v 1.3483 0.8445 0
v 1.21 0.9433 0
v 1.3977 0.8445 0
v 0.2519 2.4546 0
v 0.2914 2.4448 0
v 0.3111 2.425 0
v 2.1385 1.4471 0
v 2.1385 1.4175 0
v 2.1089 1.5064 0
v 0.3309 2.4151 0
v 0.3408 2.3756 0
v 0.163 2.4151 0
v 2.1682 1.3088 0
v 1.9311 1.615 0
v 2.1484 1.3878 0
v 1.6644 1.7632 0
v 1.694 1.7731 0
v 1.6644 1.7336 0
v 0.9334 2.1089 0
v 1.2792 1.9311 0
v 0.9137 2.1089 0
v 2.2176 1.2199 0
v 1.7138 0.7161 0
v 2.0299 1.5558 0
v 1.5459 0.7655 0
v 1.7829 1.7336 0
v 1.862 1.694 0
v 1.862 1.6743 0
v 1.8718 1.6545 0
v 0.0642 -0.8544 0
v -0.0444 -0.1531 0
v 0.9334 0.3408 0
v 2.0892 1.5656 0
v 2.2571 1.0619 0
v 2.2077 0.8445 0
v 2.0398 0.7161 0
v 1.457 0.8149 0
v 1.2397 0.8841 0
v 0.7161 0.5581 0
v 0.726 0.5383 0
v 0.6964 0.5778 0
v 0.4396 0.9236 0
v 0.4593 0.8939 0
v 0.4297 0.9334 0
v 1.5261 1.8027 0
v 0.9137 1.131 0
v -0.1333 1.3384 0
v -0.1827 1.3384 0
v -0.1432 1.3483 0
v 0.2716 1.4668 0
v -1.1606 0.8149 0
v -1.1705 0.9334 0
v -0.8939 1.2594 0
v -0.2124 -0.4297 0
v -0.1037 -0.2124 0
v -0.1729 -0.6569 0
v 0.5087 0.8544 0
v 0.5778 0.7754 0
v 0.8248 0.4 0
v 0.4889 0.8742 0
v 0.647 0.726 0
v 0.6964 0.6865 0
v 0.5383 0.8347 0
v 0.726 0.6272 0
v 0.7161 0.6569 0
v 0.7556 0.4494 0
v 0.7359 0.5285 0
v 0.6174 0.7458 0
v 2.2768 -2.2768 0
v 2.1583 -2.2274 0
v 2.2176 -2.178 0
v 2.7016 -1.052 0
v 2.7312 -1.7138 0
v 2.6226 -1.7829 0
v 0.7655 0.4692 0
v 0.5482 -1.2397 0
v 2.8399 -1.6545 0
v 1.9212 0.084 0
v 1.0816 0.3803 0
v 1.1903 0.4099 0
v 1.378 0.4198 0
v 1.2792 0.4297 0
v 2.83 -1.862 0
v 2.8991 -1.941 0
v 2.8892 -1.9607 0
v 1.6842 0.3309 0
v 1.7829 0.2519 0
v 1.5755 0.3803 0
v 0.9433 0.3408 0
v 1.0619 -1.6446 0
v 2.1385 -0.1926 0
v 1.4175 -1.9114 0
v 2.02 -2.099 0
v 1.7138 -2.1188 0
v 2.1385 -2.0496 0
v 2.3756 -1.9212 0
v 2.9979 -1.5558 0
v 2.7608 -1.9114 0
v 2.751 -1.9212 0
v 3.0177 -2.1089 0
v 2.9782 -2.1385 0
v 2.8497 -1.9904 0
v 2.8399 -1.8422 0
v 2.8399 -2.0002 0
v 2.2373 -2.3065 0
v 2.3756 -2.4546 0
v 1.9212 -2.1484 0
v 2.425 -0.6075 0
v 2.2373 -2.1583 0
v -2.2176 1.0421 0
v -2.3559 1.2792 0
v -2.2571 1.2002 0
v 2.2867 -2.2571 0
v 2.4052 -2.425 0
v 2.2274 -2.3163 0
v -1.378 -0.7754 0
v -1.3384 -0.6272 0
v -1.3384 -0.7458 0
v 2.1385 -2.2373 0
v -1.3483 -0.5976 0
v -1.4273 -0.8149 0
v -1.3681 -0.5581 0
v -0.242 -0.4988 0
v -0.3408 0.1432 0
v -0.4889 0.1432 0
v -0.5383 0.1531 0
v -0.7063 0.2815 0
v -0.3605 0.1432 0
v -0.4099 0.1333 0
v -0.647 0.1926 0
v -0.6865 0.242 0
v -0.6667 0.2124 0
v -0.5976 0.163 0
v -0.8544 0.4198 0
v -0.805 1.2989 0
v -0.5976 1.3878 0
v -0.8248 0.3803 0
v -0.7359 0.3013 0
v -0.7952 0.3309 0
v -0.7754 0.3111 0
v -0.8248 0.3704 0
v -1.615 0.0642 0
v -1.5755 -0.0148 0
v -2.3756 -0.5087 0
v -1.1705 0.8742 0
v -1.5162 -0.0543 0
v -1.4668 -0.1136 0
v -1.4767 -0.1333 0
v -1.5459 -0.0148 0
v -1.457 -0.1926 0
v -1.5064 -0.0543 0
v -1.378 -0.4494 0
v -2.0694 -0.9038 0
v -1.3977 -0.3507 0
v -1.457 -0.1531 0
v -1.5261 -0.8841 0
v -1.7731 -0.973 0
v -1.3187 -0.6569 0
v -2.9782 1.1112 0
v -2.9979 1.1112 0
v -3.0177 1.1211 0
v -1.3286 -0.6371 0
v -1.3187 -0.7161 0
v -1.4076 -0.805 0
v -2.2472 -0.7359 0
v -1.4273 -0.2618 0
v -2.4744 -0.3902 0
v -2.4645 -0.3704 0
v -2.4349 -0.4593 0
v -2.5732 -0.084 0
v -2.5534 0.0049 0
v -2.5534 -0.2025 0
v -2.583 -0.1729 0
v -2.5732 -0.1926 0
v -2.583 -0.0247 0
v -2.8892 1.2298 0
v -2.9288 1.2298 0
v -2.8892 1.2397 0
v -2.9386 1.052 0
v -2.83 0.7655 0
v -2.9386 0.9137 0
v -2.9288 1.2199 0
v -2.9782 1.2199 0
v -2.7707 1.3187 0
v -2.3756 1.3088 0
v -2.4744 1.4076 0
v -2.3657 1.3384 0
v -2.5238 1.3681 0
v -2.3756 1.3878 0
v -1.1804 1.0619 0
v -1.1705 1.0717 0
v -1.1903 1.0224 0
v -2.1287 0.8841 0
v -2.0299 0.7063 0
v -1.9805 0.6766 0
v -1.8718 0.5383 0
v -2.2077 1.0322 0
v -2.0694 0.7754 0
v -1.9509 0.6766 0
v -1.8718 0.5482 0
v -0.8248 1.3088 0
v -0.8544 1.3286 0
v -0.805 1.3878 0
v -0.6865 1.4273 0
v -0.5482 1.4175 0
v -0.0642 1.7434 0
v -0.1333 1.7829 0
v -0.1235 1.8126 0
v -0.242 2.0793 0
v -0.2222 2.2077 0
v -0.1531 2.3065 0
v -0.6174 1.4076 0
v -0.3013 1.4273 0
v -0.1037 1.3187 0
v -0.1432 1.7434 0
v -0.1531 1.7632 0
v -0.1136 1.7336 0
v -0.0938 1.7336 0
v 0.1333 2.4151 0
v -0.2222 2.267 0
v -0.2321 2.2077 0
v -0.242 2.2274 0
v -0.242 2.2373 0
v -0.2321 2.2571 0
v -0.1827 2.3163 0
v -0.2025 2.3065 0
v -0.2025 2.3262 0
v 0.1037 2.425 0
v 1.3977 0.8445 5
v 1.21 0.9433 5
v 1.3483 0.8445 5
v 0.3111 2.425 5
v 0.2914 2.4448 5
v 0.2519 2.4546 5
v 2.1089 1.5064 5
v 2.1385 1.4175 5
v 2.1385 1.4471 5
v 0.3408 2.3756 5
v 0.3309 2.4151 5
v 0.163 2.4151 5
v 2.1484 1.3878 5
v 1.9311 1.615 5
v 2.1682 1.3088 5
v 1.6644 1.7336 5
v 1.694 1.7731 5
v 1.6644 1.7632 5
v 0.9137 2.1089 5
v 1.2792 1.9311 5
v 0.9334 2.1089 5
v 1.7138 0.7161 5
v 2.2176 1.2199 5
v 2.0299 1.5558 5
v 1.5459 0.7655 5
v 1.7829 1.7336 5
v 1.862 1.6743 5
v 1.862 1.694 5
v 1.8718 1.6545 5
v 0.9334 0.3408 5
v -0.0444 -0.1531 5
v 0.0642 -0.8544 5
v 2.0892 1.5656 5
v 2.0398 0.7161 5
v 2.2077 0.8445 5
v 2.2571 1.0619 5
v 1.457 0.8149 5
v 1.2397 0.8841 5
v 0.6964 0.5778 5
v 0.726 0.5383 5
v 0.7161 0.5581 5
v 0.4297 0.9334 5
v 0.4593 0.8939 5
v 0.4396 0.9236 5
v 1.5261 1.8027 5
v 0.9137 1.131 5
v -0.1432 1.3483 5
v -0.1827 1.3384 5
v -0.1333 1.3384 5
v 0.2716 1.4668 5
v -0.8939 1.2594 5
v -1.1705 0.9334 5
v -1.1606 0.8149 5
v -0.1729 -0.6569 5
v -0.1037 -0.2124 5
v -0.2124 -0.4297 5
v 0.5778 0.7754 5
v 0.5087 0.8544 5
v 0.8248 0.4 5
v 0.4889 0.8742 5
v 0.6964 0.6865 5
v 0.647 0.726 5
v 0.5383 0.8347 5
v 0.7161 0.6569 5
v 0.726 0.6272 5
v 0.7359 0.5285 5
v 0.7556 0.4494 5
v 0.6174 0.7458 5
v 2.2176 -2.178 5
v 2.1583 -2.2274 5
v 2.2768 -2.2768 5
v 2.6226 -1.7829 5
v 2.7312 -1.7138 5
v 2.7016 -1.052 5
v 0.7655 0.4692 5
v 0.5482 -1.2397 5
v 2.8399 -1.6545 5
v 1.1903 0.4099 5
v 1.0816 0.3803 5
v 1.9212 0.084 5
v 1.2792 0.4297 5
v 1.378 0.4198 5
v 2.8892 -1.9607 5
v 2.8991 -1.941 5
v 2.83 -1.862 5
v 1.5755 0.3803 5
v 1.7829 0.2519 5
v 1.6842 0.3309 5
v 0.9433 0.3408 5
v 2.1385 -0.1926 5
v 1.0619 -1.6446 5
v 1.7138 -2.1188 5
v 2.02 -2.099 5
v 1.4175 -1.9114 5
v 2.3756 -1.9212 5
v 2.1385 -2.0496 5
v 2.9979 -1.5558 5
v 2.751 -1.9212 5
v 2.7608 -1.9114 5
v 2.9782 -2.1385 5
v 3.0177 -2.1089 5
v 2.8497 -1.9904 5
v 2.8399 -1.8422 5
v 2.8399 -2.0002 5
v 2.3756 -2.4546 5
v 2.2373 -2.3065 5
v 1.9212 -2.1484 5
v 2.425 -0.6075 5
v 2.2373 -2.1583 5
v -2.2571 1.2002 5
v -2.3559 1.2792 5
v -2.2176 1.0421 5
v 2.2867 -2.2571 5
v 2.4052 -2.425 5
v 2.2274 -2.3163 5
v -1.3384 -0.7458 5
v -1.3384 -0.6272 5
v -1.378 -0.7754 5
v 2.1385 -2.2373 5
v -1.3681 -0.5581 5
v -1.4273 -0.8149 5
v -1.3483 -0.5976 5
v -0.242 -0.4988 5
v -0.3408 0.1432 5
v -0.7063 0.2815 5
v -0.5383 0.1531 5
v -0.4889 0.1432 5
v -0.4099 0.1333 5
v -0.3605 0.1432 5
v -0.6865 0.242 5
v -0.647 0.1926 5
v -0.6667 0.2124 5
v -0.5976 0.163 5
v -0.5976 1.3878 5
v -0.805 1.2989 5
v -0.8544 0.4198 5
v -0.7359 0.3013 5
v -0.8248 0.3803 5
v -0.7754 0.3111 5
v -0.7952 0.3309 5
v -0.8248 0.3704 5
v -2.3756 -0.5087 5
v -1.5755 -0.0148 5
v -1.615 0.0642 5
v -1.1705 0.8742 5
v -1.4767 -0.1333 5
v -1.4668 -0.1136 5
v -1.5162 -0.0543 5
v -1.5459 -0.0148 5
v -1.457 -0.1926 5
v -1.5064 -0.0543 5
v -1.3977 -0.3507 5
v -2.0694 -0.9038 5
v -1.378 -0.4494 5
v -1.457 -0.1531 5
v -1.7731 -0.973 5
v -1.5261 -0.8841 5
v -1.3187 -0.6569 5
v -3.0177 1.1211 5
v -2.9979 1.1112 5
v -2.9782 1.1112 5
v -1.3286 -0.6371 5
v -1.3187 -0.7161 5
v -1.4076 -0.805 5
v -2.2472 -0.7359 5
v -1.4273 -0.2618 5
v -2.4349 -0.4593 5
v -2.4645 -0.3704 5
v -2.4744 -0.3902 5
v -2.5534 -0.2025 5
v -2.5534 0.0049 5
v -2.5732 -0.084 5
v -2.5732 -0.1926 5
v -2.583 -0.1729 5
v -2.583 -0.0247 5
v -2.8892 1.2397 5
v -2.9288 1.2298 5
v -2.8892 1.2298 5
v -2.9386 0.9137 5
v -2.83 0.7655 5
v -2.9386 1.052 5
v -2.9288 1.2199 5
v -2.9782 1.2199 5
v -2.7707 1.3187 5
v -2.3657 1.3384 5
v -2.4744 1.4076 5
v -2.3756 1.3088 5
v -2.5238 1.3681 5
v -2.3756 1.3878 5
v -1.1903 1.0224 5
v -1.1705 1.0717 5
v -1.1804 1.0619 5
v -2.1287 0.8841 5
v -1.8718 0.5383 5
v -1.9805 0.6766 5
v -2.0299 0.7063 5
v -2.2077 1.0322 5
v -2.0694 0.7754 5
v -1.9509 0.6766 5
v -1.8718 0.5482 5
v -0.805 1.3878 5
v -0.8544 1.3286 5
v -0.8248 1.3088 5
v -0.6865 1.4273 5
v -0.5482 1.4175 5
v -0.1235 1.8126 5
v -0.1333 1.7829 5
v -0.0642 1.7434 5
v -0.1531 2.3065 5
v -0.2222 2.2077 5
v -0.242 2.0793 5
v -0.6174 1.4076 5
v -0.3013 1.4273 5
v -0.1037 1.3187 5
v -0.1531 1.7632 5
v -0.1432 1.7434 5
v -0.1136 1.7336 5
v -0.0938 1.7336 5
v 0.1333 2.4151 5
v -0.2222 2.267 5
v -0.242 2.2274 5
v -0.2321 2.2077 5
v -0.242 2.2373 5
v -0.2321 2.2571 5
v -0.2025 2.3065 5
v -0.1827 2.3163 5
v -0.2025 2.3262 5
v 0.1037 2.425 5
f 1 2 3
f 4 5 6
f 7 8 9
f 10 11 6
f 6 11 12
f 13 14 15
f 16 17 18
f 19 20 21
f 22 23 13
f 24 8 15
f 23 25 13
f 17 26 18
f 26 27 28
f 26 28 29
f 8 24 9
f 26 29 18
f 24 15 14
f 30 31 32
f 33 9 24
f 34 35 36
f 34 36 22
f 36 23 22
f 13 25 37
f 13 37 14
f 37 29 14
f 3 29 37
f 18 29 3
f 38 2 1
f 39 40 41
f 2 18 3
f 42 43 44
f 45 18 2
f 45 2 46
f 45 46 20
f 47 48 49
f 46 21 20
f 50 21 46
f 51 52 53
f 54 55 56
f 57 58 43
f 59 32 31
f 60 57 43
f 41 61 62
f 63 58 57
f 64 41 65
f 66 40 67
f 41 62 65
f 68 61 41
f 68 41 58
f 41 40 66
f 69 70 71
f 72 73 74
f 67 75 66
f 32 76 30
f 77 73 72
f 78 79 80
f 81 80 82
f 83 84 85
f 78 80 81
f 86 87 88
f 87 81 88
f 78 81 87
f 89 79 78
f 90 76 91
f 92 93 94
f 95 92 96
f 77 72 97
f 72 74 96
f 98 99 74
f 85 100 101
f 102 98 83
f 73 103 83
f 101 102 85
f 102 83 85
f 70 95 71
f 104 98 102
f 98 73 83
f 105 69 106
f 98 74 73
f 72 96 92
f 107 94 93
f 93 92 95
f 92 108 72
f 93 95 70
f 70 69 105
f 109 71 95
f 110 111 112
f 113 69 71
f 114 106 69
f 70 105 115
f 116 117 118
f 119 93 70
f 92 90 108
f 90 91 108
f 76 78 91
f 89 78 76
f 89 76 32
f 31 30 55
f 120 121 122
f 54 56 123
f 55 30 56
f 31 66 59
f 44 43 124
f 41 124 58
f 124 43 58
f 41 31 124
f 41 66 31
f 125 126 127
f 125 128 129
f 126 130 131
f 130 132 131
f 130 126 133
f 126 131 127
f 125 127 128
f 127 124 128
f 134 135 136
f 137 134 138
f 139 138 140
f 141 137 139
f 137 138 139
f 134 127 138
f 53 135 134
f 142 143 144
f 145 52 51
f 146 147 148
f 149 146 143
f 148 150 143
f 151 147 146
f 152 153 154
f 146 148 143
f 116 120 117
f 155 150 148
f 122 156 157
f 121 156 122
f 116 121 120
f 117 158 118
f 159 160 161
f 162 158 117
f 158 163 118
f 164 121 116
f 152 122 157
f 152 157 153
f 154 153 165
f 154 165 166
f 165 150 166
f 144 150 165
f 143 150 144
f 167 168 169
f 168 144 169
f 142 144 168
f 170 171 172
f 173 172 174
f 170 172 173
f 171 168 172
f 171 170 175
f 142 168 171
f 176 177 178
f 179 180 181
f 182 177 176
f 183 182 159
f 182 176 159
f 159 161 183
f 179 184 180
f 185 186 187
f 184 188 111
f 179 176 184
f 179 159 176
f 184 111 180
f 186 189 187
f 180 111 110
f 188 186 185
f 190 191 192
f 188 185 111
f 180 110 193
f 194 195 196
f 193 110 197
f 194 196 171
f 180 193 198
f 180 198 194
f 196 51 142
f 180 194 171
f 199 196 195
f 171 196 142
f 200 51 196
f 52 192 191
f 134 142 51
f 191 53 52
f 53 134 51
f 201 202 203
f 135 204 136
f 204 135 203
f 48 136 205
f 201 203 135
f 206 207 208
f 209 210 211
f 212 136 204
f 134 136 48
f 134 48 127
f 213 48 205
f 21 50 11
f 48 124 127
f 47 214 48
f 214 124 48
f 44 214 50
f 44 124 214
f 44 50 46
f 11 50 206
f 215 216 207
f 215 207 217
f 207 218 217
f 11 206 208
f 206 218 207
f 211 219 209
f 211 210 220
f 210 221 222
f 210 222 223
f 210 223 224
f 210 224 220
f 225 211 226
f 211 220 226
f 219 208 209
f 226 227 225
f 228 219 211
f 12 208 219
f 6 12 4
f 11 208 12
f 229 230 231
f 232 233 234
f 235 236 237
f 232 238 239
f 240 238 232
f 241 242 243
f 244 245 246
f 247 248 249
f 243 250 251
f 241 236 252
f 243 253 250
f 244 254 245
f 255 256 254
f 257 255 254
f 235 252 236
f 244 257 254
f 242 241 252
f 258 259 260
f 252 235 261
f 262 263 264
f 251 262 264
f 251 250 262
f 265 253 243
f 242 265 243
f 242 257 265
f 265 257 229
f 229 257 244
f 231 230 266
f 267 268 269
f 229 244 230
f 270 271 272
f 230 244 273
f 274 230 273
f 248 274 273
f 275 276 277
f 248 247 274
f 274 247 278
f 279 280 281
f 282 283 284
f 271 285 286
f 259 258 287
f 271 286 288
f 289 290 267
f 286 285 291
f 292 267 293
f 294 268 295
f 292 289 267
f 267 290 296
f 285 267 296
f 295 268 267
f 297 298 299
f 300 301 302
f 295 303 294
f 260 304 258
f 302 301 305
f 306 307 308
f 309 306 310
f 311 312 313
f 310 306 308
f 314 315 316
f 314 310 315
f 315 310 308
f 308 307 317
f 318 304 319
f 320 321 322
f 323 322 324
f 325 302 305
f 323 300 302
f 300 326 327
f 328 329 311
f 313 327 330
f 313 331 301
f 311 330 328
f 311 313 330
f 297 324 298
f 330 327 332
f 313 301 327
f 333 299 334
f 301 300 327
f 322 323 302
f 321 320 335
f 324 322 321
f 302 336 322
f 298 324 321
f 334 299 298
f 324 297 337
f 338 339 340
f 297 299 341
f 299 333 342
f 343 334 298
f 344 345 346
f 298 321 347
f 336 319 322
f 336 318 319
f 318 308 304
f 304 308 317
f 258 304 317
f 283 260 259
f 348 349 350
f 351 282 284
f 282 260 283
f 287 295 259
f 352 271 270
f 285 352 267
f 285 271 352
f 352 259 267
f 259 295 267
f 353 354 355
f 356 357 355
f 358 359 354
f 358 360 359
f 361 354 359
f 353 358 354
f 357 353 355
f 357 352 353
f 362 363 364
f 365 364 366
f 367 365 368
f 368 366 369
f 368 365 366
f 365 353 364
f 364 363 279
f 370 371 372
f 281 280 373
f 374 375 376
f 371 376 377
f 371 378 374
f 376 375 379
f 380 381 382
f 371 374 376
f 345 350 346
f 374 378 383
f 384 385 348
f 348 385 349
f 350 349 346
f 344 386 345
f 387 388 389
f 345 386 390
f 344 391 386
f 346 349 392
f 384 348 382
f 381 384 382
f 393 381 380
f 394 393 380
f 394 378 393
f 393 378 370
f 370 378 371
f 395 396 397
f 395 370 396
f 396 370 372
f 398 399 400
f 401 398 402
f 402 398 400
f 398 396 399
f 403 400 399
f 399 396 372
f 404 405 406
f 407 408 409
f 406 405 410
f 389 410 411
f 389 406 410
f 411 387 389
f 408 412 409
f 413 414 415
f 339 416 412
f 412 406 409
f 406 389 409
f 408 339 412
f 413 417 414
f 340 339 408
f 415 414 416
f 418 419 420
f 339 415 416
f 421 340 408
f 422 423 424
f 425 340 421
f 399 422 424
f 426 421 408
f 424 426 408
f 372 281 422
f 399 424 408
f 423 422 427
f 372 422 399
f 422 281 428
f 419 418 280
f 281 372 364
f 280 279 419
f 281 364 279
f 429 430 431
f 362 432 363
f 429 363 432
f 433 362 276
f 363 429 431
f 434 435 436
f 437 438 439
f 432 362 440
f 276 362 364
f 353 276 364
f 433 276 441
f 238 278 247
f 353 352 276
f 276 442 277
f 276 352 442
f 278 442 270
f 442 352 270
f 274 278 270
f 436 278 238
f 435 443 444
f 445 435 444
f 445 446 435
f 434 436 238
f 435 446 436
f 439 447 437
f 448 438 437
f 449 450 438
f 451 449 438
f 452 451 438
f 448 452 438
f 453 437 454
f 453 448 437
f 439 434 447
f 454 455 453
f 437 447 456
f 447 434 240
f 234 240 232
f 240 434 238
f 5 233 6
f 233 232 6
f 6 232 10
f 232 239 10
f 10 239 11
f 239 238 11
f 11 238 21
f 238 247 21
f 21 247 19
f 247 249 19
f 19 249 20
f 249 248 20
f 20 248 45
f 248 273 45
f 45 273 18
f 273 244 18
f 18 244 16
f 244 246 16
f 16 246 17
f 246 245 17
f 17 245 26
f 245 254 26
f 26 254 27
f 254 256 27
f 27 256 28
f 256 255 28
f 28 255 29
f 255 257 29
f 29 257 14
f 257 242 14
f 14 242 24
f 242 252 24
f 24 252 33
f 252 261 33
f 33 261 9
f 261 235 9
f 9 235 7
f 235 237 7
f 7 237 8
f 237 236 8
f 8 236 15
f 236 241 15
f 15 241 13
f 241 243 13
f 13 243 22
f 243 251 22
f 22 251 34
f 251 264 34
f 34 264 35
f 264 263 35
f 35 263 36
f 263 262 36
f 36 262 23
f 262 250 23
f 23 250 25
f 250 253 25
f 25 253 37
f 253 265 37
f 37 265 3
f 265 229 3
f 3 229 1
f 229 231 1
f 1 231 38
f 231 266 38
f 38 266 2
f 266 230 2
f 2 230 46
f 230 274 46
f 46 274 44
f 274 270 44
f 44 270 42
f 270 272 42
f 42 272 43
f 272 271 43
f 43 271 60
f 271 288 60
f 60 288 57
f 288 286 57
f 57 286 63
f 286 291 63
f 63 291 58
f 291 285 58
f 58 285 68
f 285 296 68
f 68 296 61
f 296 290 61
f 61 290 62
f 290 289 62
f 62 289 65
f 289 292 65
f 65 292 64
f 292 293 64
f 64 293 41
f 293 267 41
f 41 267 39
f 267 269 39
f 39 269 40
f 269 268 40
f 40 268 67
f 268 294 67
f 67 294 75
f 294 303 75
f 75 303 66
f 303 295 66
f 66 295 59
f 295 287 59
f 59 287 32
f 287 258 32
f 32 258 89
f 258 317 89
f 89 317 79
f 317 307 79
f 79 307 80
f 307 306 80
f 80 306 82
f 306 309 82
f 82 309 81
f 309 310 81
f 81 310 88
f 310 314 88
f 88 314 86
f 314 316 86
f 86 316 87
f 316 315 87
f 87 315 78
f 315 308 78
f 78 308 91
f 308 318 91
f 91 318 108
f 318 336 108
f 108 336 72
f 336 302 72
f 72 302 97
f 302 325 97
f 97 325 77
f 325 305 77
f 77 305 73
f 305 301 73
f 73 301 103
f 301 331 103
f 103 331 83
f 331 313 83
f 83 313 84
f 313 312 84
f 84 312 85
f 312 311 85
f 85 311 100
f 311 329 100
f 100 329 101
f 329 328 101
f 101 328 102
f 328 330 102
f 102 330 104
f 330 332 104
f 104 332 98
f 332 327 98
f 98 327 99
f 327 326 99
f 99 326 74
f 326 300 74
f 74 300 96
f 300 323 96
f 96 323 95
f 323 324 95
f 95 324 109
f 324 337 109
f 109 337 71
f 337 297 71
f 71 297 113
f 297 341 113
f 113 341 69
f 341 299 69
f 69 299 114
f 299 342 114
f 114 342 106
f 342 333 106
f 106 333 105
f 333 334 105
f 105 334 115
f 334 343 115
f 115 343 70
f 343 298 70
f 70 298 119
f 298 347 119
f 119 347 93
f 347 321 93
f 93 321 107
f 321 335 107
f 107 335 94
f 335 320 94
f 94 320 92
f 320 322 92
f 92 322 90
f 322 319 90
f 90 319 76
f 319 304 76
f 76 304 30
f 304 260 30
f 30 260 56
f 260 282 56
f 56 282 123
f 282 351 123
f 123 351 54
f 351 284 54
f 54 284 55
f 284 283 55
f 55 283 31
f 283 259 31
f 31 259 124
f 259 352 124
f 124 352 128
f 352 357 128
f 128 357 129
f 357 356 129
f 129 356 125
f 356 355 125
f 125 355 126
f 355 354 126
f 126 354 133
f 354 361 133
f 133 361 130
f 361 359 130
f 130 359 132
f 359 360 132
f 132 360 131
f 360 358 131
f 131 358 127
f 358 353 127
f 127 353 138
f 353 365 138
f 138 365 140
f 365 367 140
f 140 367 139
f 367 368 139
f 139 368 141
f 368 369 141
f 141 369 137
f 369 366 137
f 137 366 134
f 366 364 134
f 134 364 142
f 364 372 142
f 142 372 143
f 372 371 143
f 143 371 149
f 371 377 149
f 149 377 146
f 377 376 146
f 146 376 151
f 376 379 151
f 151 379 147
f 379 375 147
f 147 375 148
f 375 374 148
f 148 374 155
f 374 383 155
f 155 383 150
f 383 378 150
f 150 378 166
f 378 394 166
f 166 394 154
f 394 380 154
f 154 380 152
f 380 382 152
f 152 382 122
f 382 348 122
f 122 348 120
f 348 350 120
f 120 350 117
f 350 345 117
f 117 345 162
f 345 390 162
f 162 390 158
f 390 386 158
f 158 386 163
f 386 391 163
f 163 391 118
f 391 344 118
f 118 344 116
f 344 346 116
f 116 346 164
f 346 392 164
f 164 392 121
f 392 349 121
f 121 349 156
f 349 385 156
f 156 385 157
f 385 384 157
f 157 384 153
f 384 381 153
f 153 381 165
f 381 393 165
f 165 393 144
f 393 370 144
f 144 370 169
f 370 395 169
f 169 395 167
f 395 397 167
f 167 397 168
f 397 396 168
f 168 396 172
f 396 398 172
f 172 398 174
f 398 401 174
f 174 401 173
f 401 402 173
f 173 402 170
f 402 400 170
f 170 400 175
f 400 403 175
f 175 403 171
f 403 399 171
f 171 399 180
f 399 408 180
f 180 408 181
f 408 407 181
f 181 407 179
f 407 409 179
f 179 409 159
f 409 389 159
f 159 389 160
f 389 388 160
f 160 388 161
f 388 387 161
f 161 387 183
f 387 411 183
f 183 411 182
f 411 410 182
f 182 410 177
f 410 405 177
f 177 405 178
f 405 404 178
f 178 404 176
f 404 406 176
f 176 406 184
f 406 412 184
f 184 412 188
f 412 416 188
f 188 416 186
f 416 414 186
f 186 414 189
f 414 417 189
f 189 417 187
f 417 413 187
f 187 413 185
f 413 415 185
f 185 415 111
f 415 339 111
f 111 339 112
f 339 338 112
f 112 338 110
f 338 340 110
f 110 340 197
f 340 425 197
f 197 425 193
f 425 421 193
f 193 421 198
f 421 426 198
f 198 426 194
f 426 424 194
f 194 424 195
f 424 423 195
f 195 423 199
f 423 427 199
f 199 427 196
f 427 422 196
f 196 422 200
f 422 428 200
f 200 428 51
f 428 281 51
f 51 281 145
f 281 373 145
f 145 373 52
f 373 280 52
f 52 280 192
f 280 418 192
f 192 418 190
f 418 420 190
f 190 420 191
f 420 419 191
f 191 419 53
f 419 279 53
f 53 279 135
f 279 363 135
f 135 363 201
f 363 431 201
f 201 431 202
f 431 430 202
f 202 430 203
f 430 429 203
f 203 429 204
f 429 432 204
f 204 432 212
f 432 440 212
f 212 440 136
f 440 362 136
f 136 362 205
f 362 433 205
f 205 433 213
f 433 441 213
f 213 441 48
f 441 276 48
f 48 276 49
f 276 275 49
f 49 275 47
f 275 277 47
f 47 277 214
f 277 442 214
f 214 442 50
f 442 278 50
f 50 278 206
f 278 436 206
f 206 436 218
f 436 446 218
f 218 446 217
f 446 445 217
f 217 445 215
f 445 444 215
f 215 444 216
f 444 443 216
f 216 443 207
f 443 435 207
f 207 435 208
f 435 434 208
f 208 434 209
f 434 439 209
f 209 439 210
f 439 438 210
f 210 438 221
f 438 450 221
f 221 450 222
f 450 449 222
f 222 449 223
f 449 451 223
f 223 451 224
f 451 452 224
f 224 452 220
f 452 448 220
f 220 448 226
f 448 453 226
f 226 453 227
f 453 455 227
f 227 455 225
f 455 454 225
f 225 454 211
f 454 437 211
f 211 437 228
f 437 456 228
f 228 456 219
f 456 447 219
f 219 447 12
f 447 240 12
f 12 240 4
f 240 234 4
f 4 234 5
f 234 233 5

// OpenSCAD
// Module names are of the form poly_<inkscape-path-id>().  As a result,
// you can associate a polygon in this OpenSCAD program with the corresponding
// SVG element in the Inkscape document by looking for the XML element with
// the attribute id="inkscape-path-id".

// fudge value is used to ensure that subtracted solids are a tad taller
// in the z dimension than the polygon being subtracted from.  This helps
// keep the resulting .stl file manifold.
fudge = 0.1;

module poly_path4390(h)
{
  scale([25.4/90, -25.4/90, 1]) union()
  {
    linear_extrude(height=h)
      polygon([[10.692500,7.472500],[10.552500,7.577500],[10.097500,7.052500],[10.062500,7.087500],[9.782500,6.772500],[9.747500,6.807500],[9.292500,6.317500],[8.417500,6.807500],[7.577500,7.262500],[7.927500,7.647500],[7.857500,7.717500],[8.102500,7.997500],[8.067500,8.067500],[8.522500,8.592500],[8.417500,8.697500],[7.927500,8.172500],[7.892500,8.207500],[7.647500,7.892500],[7.577500,7.927500],[7.157500,7.437500],[6.947500,7.542500],[6.807500,7.612500],[6.072500,7.507500],[5.022500,6.772500],[3.762500,5.827500],[1.942500,4.392500],[0.227500,3.027500],[-0.612500,2.327500],[-0.857500,1.767500],[-0.752500,1.522500],[-0.577500,1.172500],[-0.367500,0.752500],[-0.157500,0.542500],[-1.207500,-0.507500],[-1.277500,-0.507500],[-1.452500,-0.472500],[-1.732500,-0.507500],[-1.907500,-0.542500],[-2.117500,-0.577500],[-2.292500,-0.682500],[-2.362500,-0.752500],[-2.432500,-0.857500],[-2.502500,-0.997500],[-2.607500,-1.067500],[-2.747500,-1.102500],[-2.817500,-1.172500],[-2.922500,-1.312500],[-2.922500,-1.347500],[-3.027500,-1.487500],[-5.722500,-0.227500],[-5.582500,0.052500],[-5.477500,0.052500],[-5.372500,0.192500],[-5.337500,0.192500],[-5.197500,0.402500],[-5.232500,0.472500],[-5.162500,0.542500],[-5.162500,0.682500],[-5.057500,0.927500],[-4.952500,1.242500],[-4.882500,1.592500],[-4.847500,1.977500],[-4.812500,2.047500],[-4.777500,2.117500],[-4.742500,2.222500],[-4.707500,2.257500],[-4.672500,2.327500],[-4.672500,2.537500],[-4.742500,2.642500],[-4.882500,2.747500],[-4.987500,2.852500],[-5.057500,2.887500],[-5.407500,3.132500],[-6.282500,3.447500],[-7.332500,3.202500],[-7.962500,2.607500],[-8.417500,1.802500],[-8.627500,1.627500],[-8.767500,1.382500],[-8.732500,1.312500],[-9.047500,0.717500],[-9.117500,0.682500],[-9.152500,0.612500],[-9.117500,0.297500],[-9.152500,0.087500],[-9.047500,-0.017500],[-10.027500,-2.712500],[-10.412500,-3.237500],[-10.412500,-3.727500],[-10.552500,-3.937500],[-10.622500,-3.937500],[-10.692500,-3.972500],[-10.552500,-4.322500],[-10.377500,-4.322500],[-10.377500,-4.357500],[-10.237500,-4.392500],[-10.237500,-4.357500],[-9.817500,-4.672500],[-8.942500,-4.847500],[-8.767500,-4.987500],[-8.417500,-4.917500],[-8.382500,-4.742500],[-8.417500,-4.637500],[-8.347500,-4.532500],[-7.997500,-4.252500],[-7.857500,-3.692500],[-7.822500,-3.657500],[-7.542500,-3.132500],[-7.332500,-2.747500],[-7.192500,-2.502500],[-7.017500,-2.397500],[-6.912500,-2.397500],[-6.632500,-1.907500],[-6.632500,-1.942500],[-4.112500,-2.887500],[-4.147500,-3.097500],[-4.147500,-3.167500],[-4.147500,-3.237500],[-4.147500,-3.307500],[-4.217500,-3.622500],[-4.182500,-3.762500],[-4.147500,-3.797500],[-3.167500,-4.462500],[-2.852500,-4.602500],[-2.922500,-4.637500],[-3.027500,-4.707500],[-2.852500,-4.917500],[-2.432500,-5.057500],[-2.187500,-4.987500],[-2.117500,-4.917500],[-1.942500,-5.022500],[-1.067500,-5.057500],[-0.647500,-4.742500],[-0.507500,-4.777500],[-0.472500,-4.742500],[-0.367500,-4.672500],[0.962500,-5.197500],[-0.227500,-6.177500],[-0.332500,-6.142500],[-0.402500,-6.142500],[-0.507500,-6.177500],[-0.542500,-6.247500],[-0.472500,-6.317500],[-0.437500,-6.422500],[-0.857500,-7.367500],[-0.787500,-7.822500],[-0.822500,-7.822500],[-0.857500,-7.892500],[-0.857500,-7.927500],[-0.822500,-7.997500],[-0.787500,-8.032500],[-0.752500,-8.102500],[-0.717500,-8.172500],[-0.717500,-8.242500],[-0.647500,-8.207500],[-0.542500,-8.172500],[0.367500,-8.592500],[0.472500,-8.557500],[0.577500,-8.557500],[0.892500,-8.697500],[1.032500,-8.662500],[1.102500,-8.592500],[1.172500,-8.557500],[1.207500,-8.417500],[3.237500,-7.472500],[3.307500,-7.472500],[4.532500,-6.842500],[5.407500,-6.387500],[5.897500,-6.142500],[5.897500,-6.247500],[6.002500,-6.282500],[6.317500,-6.142500],[6.597500,-6.002500],[6.597500,-5.932500],[6.632500,-5.862500],[6.842500,-5.722500],[7.017500,-5.617500],[7.192500,-5.512500],[7.402500,-5.547500],[7.472500,-5.337500],[7.542500,-5.197500],[7.577500,-5.127500],[7.577500,-5.022500],[7.612500,-4.917500],[7.682500,-4.637500],[7.857500,-4.322500],[7.997500,-3.762500],[7.822500,-2.992500],[7.227500,-2.537500],[6.072500,-2.537500],[5.477500,-2.712500],[5.162500,-2.887500],[4.952500,-2.992500],[4.777500,-2.992500],[4.392500,-3.132500],[4.287500,-3.342500],[3.237500,-4.007500],[1.522500,-3.307500],[1.557500,-3.272500],[1.627500,-3.167500],[1.732500,-3.097500],[1.802500,-3.027500],[1.907500,-2.957500],[2.047500,-2.747500],[2.187500,-2.642500],[2.292500,-2.572500],[2.467500,-2.432500],[2.537500,-2.327500],[2.572500,-2.222500],[2.467500,-2.047500],[2.502500,-2.012500],[2.537500,-1.977500],[2.572500,-1.907500],[2.607500,-1.872500],[2.677500,-1.732500],[2.712500,-1.662500],[2.677500,-1.592500],[2.922500,-1.417500],[3.307500,-1.207500],[3.342500,-1.207500],[3.832500,-1.347500],[4.217500,-1.452500],[4.532500,-1.522500],[4.882500,-1.487500],[5.582500,-1.347500],[5.967500,-1.172500],[6.317500,-0.892500],[6.807500,-0.297500],[7.577500,0.682500],[8.592500,2.152500],[9.572500,3.727500],[10.622500,5.512500],[10.062500,5.862500],[9.677500,6.072500],[10.062500,6.527500],[10.027500,6.597500],[10.272500,6.877500],[10.237500,6.947500],[10.692500,7.472500]]);
  }
}

poly_path4390(5);
